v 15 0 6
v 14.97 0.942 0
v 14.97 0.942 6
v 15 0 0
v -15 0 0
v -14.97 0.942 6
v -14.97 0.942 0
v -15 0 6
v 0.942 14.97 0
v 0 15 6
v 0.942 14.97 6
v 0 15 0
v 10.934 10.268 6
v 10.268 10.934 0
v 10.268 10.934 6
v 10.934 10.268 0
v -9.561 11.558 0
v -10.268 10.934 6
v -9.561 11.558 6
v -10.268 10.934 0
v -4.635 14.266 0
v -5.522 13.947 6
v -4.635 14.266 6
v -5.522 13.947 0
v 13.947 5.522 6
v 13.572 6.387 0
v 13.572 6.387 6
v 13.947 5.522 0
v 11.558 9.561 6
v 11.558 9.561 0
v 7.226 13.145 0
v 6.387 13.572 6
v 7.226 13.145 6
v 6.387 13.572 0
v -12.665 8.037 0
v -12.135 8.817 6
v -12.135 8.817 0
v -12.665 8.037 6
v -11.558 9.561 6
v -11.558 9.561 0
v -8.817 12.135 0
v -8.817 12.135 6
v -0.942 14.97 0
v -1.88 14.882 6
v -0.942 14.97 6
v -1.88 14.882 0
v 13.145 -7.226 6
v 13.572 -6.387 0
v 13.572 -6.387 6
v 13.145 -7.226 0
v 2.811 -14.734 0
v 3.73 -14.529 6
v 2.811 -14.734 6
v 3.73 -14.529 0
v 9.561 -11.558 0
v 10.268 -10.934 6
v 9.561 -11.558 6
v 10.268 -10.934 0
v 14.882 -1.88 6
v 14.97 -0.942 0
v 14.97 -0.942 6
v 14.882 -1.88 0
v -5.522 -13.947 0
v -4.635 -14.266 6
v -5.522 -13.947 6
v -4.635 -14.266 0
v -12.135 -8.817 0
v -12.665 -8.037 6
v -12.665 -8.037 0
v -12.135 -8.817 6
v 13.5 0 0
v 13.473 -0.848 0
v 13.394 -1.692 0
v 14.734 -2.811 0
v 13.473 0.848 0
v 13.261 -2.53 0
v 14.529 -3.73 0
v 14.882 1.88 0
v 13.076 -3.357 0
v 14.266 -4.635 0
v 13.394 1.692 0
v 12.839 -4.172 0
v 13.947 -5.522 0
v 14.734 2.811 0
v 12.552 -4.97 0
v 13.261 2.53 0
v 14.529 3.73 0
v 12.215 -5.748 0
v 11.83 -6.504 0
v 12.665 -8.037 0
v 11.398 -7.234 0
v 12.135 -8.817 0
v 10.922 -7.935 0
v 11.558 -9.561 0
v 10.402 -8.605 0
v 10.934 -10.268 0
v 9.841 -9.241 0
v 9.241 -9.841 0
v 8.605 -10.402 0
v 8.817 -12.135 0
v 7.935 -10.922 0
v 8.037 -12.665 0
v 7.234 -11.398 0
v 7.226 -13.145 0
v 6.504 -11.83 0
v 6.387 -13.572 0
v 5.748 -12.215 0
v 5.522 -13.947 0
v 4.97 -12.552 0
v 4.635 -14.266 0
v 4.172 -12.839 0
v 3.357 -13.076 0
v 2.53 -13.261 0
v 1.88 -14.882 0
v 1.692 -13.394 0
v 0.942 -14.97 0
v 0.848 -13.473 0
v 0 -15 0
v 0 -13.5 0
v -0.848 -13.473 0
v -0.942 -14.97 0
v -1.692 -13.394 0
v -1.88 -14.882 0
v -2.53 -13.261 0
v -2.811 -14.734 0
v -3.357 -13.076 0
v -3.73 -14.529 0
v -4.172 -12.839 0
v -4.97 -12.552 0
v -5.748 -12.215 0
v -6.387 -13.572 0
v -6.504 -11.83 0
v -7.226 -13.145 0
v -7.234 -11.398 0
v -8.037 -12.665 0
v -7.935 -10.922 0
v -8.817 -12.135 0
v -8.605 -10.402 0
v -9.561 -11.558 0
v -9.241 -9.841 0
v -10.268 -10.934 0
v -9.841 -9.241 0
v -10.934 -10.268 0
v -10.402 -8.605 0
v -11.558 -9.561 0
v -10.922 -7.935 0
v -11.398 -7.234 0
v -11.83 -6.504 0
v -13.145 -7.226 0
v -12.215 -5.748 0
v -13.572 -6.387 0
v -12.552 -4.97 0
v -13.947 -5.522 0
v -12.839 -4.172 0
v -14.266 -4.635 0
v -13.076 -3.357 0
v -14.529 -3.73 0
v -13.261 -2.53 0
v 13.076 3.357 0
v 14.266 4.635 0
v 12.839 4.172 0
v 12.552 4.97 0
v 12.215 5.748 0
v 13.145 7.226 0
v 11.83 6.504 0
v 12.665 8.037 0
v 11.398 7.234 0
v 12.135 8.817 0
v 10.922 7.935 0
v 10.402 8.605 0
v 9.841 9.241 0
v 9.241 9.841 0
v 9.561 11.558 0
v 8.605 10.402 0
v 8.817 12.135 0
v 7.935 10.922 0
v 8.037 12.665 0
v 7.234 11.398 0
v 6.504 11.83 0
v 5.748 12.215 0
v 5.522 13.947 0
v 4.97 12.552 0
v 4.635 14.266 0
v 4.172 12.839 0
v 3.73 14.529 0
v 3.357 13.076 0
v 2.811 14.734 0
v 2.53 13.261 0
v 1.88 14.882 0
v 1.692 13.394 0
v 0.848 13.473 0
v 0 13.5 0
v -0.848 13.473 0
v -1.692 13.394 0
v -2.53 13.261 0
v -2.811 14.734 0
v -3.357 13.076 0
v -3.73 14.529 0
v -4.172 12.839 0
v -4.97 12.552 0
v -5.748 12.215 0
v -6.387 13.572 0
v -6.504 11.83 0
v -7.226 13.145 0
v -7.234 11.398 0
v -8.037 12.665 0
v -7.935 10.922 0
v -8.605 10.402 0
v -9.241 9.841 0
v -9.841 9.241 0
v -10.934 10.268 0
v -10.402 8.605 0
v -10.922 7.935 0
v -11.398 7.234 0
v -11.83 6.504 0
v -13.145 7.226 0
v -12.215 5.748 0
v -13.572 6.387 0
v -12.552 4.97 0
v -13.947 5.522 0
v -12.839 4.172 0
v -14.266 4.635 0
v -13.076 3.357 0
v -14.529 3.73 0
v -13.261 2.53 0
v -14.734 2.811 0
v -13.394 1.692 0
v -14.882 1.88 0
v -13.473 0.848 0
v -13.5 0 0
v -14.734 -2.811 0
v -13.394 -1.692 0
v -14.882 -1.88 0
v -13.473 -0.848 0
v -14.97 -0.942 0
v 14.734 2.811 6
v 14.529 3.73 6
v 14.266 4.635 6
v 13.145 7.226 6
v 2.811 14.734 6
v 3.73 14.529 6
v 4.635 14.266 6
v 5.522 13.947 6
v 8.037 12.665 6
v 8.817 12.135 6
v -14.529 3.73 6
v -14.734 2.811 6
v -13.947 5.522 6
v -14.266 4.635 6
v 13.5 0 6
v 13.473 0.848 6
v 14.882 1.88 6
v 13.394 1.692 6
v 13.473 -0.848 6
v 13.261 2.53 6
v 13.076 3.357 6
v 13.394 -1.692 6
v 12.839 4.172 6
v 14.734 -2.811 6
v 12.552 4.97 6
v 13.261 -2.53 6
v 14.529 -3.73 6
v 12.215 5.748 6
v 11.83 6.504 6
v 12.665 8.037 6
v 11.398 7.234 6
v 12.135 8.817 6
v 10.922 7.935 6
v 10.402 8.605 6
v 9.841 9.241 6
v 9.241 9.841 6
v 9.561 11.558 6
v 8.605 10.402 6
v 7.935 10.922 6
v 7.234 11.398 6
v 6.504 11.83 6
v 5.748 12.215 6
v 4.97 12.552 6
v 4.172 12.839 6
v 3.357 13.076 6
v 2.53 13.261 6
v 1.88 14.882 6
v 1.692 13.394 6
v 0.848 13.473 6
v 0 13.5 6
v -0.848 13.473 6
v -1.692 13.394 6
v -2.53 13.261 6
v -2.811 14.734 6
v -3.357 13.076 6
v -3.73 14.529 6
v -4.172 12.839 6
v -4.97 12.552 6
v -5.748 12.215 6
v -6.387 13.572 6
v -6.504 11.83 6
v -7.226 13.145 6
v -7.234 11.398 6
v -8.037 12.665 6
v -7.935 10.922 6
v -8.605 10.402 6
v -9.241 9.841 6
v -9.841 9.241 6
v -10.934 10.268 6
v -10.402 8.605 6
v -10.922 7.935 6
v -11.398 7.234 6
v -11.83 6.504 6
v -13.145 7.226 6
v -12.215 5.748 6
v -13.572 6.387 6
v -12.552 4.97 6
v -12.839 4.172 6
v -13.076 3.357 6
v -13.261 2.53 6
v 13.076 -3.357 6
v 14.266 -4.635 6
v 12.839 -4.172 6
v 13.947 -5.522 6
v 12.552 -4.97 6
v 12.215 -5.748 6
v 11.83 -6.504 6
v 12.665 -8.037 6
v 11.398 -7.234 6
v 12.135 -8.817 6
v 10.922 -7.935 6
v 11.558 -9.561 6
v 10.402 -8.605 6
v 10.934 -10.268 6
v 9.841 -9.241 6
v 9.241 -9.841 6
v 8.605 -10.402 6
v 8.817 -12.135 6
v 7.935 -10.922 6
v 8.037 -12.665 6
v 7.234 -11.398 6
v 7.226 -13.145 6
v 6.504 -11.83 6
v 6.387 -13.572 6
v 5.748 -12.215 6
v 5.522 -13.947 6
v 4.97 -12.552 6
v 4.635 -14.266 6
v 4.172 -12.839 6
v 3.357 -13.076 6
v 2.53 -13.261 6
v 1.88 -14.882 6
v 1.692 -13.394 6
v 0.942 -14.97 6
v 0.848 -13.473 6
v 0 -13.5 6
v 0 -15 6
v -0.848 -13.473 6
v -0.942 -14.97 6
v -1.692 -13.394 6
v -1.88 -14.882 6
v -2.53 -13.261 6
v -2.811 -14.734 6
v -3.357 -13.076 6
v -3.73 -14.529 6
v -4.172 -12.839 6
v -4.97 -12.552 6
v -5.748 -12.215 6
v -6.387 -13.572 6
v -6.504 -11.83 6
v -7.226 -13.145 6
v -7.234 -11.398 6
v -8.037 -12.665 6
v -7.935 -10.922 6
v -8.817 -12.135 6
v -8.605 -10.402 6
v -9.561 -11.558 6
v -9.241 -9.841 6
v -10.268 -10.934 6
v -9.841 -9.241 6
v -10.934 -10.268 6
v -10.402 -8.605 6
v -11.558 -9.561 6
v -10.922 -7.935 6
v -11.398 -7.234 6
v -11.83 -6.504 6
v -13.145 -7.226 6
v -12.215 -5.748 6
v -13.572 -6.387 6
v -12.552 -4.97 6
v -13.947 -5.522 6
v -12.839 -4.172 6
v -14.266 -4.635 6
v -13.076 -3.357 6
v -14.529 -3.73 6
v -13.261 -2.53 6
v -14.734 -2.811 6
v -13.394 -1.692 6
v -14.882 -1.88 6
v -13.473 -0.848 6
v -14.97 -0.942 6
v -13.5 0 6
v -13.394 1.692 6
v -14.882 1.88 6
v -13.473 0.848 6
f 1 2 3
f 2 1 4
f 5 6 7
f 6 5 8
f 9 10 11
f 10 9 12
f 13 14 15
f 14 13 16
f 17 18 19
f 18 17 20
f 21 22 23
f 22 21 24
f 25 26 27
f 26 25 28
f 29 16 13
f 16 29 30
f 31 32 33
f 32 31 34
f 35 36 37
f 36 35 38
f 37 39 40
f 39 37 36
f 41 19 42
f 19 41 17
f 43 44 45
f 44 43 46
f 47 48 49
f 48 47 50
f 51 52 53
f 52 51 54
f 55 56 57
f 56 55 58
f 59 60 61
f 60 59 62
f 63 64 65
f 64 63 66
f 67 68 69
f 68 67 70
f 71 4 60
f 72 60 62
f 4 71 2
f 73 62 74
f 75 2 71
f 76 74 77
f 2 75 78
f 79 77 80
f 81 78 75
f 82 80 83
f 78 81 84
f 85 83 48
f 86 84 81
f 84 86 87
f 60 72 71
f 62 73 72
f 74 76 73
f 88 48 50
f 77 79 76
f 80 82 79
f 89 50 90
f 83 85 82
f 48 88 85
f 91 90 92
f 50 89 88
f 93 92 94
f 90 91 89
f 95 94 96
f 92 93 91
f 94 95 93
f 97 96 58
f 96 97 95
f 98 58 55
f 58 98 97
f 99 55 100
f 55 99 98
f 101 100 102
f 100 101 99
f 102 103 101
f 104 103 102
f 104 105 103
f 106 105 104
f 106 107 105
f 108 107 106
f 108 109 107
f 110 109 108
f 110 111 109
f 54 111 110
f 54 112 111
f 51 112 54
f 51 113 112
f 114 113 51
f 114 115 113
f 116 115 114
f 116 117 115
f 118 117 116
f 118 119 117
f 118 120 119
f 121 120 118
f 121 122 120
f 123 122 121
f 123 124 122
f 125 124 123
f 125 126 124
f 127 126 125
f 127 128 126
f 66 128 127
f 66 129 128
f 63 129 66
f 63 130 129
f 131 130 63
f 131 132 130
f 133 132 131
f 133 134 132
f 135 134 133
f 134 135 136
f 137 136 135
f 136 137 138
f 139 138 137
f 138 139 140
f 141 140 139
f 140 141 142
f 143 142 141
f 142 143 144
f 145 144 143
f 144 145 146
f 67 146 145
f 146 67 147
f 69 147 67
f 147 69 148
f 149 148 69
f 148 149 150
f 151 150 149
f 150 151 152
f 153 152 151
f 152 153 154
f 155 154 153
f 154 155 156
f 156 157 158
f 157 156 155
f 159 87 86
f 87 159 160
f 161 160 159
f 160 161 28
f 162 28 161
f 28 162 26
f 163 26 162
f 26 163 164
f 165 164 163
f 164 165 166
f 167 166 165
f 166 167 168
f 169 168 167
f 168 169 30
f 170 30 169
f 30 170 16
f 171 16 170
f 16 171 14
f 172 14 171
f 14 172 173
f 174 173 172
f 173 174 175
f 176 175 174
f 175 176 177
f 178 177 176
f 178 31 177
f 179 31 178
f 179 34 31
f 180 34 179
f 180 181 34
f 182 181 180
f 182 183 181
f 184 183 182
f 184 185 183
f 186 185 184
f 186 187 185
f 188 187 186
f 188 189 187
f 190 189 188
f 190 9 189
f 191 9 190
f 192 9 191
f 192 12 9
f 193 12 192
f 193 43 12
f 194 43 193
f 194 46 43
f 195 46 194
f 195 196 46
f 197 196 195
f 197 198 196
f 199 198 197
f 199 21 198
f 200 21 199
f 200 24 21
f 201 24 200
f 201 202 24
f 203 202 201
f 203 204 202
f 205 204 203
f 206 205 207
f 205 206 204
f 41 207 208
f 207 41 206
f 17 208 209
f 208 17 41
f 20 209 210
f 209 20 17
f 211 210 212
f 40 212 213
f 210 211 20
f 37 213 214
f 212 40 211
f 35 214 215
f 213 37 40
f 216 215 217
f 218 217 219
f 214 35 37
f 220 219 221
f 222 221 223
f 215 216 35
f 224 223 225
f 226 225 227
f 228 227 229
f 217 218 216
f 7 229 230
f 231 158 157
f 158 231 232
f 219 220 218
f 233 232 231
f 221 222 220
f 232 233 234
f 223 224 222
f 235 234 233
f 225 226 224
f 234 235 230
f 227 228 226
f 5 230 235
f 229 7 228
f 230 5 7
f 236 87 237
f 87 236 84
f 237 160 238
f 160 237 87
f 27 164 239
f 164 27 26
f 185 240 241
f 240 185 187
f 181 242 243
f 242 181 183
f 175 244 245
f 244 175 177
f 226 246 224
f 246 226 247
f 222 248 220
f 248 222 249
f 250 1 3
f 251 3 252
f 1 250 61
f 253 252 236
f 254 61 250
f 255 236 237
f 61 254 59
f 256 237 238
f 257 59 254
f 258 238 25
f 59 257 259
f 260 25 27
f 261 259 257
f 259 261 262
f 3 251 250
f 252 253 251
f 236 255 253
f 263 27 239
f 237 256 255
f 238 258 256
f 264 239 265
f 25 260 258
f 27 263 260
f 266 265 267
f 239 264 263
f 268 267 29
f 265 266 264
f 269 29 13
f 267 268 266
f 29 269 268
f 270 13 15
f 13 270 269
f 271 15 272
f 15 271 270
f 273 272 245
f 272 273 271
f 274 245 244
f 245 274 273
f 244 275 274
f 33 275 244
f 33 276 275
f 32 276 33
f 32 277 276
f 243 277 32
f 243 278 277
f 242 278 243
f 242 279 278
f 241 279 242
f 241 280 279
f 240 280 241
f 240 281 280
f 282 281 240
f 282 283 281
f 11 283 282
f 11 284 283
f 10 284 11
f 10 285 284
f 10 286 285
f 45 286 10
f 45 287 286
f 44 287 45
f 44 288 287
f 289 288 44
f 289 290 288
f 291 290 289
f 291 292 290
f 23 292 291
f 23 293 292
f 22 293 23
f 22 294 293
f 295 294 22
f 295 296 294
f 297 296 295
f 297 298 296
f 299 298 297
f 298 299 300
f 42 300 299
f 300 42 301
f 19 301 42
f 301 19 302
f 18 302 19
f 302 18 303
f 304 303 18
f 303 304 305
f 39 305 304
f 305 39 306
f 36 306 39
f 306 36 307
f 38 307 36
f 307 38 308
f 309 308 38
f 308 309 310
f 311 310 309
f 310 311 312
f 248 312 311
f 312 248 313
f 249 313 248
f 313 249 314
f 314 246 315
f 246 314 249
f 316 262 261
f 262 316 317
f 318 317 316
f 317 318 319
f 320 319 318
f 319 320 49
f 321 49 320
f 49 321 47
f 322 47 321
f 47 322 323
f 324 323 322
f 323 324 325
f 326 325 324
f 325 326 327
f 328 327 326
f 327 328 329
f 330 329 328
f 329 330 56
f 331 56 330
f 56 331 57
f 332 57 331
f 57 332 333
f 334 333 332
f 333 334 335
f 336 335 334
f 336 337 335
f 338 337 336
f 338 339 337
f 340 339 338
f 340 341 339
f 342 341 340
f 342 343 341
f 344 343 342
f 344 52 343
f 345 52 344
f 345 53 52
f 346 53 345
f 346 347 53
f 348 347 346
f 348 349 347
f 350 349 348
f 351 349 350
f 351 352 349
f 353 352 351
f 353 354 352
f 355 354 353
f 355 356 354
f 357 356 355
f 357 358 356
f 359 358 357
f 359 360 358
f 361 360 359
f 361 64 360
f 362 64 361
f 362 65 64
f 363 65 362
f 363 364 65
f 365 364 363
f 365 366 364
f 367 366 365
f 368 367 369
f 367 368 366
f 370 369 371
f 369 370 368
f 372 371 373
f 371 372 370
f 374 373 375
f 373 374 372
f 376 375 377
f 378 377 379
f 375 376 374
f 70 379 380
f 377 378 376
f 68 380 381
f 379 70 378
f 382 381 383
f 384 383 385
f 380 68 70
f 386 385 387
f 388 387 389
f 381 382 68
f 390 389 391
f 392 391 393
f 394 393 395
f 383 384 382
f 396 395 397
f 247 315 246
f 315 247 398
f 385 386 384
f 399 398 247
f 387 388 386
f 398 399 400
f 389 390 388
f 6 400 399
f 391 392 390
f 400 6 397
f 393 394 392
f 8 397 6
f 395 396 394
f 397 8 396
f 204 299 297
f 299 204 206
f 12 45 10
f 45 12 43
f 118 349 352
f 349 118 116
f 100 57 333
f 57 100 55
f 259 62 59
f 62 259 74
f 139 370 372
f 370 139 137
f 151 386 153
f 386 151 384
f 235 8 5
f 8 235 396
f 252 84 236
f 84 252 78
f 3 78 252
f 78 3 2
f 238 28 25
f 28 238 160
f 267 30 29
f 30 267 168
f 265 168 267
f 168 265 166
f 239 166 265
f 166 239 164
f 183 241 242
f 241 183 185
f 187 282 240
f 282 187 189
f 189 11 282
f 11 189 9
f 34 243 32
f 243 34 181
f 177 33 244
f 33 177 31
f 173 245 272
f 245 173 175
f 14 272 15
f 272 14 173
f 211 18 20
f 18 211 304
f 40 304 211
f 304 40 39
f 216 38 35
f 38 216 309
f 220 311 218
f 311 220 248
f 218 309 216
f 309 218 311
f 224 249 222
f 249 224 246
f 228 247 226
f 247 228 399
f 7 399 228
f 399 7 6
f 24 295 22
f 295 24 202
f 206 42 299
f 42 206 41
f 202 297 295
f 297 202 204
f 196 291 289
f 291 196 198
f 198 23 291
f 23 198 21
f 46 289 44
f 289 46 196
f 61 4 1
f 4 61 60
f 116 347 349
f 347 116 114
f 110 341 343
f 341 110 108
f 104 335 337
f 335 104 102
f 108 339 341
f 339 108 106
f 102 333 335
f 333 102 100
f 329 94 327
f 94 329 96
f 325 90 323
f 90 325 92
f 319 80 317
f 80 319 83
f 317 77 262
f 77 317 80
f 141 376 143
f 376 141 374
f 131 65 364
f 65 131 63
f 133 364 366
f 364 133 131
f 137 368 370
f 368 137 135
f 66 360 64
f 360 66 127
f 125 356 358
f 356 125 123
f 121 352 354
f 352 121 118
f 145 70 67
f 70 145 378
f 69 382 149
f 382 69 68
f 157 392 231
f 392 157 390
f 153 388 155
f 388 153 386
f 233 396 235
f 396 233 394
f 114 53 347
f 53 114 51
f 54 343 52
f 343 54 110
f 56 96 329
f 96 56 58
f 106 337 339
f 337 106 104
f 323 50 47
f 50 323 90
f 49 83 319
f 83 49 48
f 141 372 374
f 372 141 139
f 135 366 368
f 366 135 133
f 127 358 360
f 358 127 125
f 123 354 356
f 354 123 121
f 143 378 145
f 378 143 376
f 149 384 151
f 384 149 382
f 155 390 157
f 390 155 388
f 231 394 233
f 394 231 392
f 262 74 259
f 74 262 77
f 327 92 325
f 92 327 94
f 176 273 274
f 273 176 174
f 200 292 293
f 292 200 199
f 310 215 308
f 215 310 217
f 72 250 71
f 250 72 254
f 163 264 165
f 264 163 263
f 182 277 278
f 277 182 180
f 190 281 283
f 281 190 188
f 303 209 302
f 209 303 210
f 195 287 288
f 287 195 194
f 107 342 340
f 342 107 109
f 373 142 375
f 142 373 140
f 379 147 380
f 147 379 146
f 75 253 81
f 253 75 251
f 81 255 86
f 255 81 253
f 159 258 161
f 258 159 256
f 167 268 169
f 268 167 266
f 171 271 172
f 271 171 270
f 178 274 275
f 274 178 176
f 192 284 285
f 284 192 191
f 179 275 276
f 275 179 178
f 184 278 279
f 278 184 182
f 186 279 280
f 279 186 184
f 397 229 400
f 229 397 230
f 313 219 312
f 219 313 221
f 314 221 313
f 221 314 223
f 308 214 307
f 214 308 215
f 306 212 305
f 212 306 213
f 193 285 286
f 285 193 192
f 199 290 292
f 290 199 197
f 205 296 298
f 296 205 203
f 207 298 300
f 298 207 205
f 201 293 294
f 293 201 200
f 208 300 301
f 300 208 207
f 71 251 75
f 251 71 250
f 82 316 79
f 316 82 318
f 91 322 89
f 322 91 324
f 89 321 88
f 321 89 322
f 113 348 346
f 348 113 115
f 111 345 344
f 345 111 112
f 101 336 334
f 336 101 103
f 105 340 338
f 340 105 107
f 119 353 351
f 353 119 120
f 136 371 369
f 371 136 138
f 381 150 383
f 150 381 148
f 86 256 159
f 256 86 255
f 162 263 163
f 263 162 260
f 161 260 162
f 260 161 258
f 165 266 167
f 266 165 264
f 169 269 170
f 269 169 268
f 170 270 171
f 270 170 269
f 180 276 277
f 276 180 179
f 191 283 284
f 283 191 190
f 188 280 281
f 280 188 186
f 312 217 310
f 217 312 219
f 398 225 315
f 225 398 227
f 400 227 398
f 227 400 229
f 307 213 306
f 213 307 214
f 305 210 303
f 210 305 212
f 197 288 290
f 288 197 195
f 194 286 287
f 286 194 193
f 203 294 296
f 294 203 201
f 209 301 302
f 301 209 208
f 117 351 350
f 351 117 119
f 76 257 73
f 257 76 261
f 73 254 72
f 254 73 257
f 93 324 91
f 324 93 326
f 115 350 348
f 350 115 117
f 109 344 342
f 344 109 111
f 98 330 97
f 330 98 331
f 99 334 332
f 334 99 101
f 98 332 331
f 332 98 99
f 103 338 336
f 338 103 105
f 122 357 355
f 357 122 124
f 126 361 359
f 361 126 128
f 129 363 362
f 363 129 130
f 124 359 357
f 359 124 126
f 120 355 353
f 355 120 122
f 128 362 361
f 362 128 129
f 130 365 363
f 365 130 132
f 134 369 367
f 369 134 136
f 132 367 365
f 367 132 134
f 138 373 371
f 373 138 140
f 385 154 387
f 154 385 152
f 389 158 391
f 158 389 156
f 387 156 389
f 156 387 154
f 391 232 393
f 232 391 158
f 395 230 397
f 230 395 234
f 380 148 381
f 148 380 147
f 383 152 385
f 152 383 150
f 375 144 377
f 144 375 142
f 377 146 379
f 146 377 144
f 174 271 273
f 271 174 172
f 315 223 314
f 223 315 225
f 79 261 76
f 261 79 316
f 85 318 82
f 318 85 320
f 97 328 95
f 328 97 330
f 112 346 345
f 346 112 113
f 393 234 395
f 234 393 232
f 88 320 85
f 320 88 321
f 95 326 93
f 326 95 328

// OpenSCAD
$fn=100;

difference () {
  cylinder(h=6, d=30);
  cylinder(h=11, d=27);    
}






    
    
